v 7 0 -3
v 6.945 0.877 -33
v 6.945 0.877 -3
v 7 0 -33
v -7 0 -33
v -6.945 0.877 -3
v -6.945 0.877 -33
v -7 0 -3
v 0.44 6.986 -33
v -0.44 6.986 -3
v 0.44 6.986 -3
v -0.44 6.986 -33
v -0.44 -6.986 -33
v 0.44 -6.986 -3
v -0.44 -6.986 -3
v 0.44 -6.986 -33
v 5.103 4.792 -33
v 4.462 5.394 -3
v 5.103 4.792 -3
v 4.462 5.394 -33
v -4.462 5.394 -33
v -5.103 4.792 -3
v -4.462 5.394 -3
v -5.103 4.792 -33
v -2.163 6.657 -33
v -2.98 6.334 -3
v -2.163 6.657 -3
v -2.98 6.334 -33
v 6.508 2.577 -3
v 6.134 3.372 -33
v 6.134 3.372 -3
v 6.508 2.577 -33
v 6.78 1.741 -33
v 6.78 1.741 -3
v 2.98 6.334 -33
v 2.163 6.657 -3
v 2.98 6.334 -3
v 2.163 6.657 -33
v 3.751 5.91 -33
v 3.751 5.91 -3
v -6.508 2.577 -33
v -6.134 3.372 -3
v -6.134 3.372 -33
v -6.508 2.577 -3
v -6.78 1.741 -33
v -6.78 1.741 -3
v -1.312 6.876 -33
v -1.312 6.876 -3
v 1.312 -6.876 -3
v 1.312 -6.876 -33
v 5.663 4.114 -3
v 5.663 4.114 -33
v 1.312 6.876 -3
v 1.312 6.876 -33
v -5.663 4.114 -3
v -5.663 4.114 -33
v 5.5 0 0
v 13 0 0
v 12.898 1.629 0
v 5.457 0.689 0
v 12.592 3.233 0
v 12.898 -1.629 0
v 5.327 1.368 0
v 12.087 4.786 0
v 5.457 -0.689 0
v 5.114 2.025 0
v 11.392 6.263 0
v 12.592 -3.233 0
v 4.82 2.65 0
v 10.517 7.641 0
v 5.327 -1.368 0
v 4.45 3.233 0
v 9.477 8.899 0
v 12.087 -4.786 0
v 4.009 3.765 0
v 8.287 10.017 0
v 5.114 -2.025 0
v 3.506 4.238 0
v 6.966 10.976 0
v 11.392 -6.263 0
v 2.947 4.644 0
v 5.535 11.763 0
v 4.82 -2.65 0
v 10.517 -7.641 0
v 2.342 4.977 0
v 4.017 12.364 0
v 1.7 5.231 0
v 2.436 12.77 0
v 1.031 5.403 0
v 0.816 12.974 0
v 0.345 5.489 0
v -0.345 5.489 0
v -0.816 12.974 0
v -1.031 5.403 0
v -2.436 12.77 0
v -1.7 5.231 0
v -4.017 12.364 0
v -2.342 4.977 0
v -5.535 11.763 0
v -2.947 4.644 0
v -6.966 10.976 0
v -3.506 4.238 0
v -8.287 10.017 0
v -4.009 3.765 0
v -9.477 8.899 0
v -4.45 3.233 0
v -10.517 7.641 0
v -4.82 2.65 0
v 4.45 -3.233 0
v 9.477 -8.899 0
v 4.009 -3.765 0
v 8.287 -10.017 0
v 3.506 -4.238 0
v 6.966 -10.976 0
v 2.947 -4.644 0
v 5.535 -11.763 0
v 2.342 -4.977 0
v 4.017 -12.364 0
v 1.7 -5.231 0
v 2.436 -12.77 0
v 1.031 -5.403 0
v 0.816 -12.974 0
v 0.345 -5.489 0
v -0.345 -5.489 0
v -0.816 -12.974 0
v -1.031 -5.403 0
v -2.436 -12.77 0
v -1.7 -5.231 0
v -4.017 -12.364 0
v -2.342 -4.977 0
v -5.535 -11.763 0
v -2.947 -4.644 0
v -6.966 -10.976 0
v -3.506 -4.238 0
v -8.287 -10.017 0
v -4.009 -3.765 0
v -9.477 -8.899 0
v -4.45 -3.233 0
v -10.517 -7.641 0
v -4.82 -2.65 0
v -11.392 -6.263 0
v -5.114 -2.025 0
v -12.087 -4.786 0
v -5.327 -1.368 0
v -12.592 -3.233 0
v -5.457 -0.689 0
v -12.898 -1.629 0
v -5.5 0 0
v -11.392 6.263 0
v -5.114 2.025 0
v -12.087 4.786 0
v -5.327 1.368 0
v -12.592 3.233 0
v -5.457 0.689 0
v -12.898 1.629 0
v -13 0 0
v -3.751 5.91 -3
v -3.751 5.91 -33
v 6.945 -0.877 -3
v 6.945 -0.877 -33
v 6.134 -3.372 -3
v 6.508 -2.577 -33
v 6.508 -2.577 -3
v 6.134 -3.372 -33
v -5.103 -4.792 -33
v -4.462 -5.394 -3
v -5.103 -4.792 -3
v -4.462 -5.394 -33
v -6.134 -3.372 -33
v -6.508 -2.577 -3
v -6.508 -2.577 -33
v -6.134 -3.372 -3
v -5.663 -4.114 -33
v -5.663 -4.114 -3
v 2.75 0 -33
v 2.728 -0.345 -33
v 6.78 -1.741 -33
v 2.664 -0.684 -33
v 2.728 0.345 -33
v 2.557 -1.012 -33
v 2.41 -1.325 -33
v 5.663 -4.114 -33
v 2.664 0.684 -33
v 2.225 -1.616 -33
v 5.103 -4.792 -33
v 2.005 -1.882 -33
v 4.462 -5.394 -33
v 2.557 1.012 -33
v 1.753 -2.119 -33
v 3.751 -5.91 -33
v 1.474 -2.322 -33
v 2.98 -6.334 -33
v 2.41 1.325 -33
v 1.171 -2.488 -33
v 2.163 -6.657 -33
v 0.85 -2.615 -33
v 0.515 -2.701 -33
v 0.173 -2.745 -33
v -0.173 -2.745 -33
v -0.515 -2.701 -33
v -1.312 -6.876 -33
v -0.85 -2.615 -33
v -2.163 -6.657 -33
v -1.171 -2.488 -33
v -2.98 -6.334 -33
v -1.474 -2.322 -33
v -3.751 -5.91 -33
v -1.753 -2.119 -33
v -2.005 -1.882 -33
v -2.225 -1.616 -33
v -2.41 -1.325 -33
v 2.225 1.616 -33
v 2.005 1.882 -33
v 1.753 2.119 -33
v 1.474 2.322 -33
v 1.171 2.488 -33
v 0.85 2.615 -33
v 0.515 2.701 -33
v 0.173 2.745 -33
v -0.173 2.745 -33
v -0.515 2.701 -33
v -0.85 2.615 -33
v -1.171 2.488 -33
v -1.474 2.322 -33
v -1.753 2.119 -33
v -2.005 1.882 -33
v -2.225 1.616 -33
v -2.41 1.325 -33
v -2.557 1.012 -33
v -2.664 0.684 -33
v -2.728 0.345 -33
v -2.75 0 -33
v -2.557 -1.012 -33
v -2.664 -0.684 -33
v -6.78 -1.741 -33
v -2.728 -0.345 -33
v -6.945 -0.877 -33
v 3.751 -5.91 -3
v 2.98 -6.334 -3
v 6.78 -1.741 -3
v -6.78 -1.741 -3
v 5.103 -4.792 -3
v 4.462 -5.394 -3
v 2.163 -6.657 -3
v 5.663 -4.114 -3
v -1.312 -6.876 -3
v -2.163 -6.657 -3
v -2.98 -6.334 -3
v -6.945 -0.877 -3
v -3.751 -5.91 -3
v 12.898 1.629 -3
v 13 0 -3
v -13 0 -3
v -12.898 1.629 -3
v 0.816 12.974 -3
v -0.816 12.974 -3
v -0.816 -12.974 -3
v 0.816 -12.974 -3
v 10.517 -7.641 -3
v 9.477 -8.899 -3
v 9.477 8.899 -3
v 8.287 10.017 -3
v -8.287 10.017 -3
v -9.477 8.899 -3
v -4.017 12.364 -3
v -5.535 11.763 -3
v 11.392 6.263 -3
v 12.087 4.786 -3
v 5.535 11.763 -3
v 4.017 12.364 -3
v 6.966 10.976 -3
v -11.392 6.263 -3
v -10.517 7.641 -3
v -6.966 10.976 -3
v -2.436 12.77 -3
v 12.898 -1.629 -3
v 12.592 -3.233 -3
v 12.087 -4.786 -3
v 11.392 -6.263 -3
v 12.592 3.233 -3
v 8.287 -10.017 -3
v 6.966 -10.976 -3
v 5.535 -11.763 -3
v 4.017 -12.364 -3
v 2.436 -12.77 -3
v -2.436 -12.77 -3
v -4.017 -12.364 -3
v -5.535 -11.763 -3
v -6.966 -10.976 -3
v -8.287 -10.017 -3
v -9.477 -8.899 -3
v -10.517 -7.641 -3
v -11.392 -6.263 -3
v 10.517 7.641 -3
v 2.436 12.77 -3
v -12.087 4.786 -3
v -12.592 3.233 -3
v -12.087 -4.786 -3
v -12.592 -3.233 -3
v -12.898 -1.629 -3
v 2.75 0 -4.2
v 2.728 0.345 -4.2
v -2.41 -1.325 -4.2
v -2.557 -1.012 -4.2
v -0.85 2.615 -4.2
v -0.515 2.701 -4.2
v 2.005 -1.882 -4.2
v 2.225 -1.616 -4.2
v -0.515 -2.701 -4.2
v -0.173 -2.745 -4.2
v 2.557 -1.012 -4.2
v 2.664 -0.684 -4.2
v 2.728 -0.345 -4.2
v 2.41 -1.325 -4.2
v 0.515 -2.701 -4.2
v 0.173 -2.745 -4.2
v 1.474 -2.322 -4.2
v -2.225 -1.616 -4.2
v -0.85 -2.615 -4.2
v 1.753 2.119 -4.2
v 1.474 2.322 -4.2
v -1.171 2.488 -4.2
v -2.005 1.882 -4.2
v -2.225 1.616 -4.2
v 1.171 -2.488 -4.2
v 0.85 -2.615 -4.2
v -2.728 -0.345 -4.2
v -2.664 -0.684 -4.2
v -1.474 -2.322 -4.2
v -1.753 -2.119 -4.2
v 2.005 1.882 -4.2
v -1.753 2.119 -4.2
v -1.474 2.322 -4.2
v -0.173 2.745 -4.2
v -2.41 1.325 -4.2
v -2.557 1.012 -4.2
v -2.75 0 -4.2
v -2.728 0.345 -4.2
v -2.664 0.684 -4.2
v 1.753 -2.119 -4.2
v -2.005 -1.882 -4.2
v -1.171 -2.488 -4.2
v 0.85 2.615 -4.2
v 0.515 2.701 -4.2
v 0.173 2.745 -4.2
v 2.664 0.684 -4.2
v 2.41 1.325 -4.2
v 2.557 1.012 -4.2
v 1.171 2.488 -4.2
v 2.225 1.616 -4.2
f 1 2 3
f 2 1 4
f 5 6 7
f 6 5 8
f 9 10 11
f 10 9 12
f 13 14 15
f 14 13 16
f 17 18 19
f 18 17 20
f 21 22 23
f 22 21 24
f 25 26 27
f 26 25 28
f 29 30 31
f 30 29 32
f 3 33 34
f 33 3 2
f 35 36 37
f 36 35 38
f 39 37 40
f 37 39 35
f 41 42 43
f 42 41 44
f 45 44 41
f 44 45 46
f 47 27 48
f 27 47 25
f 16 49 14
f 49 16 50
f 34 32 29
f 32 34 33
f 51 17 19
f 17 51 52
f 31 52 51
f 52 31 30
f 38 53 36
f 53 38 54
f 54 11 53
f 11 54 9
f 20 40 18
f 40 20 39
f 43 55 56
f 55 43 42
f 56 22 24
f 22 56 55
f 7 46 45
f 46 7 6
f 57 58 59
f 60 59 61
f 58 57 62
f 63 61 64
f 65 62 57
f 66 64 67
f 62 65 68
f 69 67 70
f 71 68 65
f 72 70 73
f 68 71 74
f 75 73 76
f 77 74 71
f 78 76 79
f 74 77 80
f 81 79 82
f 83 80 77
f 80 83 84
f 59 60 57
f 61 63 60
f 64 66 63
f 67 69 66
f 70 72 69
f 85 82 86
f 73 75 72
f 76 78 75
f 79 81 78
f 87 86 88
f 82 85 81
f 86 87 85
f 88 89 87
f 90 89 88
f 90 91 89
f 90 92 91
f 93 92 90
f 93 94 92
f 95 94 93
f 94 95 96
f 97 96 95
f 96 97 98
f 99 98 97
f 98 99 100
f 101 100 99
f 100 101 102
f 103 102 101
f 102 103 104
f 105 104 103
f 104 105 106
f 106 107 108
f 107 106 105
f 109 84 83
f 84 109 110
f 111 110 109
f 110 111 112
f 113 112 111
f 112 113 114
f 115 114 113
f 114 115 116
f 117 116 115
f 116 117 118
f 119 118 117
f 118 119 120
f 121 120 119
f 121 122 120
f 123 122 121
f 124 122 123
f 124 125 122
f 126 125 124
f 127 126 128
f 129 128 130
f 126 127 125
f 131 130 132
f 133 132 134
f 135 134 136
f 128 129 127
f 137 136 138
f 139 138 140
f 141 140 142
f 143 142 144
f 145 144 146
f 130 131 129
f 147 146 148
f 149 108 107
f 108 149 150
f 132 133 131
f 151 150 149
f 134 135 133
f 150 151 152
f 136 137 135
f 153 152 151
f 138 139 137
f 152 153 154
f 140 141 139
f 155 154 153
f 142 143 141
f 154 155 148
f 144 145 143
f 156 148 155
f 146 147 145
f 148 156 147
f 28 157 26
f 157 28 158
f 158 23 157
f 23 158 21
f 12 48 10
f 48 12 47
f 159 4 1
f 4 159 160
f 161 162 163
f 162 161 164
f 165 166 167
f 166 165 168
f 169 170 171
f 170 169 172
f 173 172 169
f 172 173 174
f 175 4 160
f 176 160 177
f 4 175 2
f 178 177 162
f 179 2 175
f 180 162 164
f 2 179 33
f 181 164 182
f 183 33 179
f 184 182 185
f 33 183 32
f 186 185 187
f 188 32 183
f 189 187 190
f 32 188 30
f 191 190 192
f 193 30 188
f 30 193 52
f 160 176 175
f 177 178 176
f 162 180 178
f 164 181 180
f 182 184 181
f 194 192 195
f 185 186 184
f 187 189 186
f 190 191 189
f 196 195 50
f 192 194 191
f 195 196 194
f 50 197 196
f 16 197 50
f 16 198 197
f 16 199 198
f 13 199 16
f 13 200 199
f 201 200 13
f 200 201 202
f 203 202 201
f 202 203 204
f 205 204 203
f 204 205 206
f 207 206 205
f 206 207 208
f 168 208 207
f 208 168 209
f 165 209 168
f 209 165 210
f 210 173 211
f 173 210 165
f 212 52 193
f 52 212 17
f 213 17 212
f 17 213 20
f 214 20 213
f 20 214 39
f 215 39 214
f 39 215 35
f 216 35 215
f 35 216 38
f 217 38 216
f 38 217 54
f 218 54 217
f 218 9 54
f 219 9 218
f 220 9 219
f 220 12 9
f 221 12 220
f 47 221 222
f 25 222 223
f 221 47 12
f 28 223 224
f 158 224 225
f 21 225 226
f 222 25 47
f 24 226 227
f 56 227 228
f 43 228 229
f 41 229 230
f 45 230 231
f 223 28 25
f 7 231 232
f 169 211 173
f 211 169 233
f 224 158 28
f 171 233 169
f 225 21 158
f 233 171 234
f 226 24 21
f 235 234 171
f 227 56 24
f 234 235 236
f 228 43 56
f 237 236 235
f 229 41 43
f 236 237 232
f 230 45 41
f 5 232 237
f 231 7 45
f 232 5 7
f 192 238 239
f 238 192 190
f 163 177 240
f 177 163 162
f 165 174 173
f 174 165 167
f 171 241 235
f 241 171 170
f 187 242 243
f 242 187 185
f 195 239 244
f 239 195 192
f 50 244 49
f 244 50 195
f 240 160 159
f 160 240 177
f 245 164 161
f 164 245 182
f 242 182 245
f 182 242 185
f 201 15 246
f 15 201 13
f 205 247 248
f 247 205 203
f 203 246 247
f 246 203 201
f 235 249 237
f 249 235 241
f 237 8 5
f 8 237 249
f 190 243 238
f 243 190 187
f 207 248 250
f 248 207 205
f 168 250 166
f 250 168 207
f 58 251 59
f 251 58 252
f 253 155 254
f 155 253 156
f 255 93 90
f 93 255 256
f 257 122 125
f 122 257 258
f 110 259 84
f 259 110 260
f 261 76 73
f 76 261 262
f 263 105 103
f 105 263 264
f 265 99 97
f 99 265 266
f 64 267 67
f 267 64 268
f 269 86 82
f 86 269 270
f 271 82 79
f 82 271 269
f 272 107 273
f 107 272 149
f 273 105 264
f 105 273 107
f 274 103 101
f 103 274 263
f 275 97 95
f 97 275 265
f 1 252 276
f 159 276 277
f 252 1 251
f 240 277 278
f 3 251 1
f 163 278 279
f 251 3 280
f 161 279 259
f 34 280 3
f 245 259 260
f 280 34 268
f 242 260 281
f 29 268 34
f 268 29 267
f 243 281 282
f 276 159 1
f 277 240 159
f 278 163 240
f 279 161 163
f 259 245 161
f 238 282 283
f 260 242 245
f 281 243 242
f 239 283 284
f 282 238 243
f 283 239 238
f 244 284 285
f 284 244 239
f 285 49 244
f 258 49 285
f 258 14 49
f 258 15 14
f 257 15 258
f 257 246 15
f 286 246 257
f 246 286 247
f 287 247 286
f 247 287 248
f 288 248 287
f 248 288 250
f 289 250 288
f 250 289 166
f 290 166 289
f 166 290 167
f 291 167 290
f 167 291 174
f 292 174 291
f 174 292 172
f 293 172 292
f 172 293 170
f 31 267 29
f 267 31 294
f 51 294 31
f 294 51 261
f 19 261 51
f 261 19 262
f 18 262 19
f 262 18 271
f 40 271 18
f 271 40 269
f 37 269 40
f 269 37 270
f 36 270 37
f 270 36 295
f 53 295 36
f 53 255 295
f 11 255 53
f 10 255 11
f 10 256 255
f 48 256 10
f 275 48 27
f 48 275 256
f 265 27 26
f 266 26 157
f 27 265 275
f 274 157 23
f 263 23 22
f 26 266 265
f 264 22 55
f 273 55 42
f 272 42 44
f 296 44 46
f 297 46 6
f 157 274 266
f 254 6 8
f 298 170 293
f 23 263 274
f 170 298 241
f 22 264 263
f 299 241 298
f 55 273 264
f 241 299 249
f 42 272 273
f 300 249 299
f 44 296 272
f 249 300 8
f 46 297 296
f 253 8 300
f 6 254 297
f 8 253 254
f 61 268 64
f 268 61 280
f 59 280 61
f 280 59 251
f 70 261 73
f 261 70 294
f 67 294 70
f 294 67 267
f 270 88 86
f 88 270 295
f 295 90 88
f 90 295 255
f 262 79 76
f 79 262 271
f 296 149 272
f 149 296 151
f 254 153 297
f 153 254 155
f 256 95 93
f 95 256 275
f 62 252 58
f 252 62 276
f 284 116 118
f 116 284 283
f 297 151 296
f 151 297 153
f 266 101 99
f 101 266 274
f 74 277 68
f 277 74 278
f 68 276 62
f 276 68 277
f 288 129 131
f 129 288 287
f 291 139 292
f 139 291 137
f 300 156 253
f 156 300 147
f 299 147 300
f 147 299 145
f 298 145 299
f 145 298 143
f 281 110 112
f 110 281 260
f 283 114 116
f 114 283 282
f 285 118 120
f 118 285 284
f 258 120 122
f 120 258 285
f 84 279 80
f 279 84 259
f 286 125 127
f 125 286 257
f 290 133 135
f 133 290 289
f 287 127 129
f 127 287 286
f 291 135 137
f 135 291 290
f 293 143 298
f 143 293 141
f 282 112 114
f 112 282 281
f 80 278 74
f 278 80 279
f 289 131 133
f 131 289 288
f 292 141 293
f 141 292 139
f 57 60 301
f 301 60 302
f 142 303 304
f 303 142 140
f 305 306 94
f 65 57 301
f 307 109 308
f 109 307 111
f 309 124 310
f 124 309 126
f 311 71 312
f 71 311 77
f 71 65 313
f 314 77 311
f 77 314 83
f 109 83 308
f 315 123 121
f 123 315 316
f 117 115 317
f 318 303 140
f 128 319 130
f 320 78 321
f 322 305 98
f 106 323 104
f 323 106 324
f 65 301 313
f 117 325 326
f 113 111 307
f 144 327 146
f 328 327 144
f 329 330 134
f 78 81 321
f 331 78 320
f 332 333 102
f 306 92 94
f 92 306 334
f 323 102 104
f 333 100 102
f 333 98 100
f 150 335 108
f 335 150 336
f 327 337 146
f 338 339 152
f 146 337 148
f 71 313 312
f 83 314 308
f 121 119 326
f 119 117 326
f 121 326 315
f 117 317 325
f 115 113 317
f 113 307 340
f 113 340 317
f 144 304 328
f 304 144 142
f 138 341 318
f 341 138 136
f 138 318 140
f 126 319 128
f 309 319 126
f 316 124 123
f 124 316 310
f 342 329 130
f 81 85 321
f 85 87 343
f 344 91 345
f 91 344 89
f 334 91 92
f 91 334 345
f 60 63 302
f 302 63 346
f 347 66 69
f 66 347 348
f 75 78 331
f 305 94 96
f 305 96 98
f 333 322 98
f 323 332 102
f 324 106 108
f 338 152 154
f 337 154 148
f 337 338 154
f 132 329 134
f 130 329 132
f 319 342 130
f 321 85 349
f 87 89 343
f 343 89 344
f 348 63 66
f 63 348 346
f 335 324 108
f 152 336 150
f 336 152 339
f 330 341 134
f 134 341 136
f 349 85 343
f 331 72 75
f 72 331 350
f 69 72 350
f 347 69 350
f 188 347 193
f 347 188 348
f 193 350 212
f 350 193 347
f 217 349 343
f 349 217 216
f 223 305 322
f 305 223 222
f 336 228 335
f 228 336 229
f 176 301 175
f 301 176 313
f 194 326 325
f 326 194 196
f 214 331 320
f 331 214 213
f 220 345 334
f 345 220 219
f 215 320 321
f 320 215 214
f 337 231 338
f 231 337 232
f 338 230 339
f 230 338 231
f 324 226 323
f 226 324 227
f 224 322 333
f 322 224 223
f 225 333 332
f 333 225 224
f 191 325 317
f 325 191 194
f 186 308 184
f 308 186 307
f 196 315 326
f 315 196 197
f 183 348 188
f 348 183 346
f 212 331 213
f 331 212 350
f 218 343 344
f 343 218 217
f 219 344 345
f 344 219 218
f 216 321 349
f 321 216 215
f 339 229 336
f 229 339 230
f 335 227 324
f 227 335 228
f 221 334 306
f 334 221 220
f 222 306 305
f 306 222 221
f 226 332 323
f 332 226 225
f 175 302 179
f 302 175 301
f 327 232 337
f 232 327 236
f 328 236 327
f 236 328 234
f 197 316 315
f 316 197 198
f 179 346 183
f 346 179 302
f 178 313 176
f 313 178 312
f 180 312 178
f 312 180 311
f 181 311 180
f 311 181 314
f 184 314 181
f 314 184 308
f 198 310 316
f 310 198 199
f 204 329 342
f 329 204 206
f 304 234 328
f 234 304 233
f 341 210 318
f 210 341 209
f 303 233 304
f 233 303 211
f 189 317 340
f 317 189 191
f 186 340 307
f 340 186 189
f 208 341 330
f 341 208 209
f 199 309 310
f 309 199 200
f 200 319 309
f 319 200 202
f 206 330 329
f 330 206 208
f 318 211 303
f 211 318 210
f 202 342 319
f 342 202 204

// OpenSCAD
$fn = 50;


difference() {
	union() {
		translate(v = [0, 0, -33.0000000000]) {
			cylinder(h = 33, r = 7.0000000000);
		}
		translate(v = [0, 0, -3.0000000000]) {
			cylinder(h = 3, r = 13.0000000000);
		}
	}
	union() {
		translate(v = [0, 0, 0]) {
			rotate(a = [0, 0, 0]) {
				difference() {
					union() {
						#translate(v = [0, 0, -33.0000000000]) {
							cylinder(h = 33, r = 2.2500000000);
						}
						#translate(v = [0, 0, -4.2000000000]) {
							cylinder(h = 4.2000000000, r = 7.0000000000, r1 = 2.7500000000, r2 = 5.5000000000);
						}
						#translate(v = [0, 0, -33.0000000000]) {
							cylinder(h = 33, r = 2.7500000000);
						}
						#translate(v = [0, 0, -33.0000000000]) {
							cylinder(h = 33, r = 2.2500000000);
						}
					}
					union();
				}
			}
		}
	}
}
